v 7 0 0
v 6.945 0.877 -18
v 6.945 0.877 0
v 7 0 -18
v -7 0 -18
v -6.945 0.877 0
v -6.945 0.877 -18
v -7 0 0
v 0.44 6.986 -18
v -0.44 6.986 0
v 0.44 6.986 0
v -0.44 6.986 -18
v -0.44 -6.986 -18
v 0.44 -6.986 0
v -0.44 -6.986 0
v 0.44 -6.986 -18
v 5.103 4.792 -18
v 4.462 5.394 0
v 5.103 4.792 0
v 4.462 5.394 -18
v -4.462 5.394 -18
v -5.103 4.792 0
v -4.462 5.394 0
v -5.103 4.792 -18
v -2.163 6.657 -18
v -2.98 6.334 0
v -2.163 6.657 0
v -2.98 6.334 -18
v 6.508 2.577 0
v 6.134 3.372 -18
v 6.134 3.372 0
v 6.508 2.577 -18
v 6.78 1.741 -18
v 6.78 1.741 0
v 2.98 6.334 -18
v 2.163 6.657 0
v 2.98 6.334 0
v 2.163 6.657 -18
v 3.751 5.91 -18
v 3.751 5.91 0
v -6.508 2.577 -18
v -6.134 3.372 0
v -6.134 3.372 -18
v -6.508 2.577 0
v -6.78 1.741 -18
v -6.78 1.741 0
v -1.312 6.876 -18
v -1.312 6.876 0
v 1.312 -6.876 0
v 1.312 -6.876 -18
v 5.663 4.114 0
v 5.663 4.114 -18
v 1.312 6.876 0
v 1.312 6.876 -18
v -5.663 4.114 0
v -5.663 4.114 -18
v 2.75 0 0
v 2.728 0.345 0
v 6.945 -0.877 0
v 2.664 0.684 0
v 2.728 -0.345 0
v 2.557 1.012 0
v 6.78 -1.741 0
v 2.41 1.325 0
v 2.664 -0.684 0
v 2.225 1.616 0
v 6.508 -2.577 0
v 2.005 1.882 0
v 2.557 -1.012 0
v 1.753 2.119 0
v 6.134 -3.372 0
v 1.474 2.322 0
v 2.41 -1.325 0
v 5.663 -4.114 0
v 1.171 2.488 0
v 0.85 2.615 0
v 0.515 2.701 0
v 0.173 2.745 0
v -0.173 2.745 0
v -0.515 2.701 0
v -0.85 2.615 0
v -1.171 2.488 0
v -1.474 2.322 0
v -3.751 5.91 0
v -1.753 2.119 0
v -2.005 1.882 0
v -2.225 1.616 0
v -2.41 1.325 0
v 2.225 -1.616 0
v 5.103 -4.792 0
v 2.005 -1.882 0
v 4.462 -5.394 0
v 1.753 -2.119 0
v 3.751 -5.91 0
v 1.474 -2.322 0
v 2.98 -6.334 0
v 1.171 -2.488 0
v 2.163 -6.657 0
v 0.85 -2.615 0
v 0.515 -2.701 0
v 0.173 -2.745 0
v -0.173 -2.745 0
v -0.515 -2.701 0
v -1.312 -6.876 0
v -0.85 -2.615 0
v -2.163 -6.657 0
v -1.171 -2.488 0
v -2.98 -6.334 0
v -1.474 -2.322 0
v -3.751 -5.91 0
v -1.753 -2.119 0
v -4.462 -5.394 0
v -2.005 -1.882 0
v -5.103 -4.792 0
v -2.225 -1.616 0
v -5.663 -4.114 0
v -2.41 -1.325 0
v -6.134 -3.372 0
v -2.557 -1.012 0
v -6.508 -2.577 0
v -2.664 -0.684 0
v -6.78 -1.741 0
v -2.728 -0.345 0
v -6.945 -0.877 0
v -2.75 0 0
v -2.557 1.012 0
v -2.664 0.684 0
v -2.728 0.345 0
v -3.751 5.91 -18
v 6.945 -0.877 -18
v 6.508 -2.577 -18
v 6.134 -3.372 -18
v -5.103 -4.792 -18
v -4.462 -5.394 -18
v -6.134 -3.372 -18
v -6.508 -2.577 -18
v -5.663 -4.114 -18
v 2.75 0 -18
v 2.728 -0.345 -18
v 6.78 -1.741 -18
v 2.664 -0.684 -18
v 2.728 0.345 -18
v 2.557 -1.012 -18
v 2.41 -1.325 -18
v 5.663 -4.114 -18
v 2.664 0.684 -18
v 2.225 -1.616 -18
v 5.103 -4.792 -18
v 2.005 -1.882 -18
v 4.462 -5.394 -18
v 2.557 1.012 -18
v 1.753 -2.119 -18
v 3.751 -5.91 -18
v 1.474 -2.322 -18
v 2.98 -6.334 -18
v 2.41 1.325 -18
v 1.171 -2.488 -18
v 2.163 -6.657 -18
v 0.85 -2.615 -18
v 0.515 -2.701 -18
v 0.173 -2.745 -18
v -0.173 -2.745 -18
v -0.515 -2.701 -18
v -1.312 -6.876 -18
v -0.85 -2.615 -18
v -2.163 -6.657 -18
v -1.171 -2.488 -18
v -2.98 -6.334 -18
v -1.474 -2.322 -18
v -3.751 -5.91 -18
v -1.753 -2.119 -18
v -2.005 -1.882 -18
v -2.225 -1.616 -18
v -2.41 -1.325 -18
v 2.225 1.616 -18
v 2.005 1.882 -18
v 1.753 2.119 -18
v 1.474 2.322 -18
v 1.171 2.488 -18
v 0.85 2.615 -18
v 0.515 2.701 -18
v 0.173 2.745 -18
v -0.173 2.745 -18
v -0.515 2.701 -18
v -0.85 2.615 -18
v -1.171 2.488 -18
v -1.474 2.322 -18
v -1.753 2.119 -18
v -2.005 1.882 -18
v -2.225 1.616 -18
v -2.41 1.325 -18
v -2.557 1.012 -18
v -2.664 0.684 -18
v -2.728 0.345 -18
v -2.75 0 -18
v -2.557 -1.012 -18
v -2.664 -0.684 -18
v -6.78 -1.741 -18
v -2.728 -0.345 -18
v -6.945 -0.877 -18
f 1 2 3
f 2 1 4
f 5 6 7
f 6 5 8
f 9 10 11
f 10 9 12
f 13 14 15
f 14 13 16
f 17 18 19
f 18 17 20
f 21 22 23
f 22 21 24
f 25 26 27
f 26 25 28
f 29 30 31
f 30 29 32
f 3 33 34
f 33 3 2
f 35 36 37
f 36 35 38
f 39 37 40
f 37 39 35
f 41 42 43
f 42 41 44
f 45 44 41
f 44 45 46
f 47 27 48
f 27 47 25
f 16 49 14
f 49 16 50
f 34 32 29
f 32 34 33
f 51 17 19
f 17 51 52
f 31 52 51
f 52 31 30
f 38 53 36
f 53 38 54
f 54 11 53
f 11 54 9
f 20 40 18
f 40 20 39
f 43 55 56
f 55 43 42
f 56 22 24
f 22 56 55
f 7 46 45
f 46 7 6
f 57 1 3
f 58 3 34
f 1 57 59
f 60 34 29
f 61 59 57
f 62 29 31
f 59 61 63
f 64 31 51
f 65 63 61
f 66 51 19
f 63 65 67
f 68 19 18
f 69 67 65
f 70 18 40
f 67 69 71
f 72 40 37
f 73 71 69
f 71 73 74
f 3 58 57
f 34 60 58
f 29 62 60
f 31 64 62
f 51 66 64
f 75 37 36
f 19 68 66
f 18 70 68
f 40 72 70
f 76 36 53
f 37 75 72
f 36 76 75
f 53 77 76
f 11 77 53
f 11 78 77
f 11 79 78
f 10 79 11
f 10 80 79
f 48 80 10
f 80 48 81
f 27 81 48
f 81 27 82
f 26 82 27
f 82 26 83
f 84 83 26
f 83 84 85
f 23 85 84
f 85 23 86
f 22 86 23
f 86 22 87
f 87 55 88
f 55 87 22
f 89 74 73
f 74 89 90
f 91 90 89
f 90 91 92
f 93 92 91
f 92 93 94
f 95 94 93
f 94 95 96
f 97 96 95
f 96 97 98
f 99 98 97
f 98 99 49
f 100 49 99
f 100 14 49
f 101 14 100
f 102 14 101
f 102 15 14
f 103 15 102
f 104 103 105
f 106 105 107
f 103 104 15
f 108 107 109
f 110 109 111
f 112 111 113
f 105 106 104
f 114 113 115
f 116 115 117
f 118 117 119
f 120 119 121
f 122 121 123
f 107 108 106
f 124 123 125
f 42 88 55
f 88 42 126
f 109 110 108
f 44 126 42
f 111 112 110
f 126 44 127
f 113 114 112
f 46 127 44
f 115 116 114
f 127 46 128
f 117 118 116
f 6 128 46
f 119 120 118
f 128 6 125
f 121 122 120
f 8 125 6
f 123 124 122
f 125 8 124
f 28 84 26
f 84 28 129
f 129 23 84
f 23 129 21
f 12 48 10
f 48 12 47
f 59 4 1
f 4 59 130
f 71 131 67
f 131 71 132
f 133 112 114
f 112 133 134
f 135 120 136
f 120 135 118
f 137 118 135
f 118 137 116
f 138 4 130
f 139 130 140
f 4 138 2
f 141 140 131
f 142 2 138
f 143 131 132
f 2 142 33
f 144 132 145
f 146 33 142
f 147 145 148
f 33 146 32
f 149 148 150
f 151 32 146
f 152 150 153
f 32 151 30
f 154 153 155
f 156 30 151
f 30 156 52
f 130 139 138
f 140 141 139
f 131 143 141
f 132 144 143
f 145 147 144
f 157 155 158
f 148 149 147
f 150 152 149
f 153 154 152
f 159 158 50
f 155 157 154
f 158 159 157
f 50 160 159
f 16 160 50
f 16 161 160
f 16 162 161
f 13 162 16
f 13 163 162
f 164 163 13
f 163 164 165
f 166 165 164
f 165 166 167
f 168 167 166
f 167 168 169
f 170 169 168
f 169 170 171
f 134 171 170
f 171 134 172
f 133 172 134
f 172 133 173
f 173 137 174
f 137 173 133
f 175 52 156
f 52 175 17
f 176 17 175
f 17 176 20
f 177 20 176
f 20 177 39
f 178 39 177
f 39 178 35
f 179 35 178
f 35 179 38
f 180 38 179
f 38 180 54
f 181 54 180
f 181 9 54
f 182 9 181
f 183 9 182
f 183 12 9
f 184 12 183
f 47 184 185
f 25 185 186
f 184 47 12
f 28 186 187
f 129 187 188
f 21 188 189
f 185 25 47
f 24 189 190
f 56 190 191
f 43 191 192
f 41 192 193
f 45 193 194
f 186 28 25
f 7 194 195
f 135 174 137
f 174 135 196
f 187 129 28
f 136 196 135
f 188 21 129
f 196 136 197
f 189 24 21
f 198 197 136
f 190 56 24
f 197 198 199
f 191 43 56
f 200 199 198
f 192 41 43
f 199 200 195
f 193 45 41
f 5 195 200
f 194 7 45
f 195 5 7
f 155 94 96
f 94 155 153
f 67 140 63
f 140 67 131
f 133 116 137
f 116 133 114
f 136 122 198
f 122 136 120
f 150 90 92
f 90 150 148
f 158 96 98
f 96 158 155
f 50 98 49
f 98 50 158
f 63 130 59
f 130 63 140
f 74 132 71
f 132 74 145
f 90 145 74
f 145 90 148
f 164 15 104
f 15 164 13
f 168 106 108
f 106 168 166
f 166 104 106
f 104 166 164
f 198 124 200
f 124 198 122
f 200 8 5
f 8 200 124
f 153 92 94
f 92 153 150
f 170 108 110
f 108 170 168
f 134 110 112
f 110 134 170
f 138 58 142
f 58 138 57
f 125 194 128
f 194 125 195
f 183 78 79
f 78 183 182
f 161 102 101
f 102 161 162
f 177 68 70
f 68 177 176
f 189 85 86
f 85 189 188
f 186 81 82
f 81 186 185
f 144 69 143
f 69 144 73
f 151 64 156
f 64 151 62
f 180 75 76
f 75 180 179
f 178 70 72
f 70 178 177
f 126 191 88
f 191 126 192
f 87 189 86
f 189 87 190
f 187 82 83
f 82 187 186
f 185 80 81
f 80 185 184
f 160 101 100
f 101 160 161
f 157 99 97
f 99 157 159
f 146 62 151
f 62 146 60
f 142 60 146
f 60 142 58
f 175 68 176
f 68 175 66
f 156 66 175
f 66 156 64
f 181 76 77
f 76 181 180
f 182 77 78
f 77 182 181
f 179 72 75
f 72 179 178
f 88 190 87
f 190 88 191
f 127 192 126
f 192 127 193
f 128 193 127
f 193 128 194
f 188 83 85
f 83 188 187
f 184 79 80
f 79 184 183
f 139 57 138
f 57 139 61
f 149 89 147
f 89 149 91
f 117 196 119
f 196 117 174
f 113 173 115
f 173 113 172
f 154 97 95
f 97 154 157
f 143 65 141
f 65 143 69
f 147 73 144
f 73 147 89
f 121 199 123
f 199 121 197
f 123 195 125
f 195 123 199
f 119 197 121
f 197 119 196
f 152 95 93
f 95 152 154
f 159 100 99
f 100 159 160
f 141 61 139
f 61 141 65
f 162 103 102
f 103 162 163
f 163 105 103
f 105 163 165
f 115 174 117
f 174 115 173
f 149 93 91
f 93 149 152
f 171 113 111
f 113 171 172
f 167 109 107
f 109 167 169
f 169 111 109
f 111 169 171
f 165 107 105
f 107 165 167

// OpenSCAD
$fn = 50;


difference() {
	union() {
		translate(v = [0, 0, -18.0000000000]) {
			cylinder(h = 18, r = 7.0000000000);
		}
		cylinder(h = 0, r = 10.0000000000);
	}
	union() {
		#translate(v = [0, 0, -18]) {
			cylinder(h = 18, r = 2.7500000000);
		}
	}
}
